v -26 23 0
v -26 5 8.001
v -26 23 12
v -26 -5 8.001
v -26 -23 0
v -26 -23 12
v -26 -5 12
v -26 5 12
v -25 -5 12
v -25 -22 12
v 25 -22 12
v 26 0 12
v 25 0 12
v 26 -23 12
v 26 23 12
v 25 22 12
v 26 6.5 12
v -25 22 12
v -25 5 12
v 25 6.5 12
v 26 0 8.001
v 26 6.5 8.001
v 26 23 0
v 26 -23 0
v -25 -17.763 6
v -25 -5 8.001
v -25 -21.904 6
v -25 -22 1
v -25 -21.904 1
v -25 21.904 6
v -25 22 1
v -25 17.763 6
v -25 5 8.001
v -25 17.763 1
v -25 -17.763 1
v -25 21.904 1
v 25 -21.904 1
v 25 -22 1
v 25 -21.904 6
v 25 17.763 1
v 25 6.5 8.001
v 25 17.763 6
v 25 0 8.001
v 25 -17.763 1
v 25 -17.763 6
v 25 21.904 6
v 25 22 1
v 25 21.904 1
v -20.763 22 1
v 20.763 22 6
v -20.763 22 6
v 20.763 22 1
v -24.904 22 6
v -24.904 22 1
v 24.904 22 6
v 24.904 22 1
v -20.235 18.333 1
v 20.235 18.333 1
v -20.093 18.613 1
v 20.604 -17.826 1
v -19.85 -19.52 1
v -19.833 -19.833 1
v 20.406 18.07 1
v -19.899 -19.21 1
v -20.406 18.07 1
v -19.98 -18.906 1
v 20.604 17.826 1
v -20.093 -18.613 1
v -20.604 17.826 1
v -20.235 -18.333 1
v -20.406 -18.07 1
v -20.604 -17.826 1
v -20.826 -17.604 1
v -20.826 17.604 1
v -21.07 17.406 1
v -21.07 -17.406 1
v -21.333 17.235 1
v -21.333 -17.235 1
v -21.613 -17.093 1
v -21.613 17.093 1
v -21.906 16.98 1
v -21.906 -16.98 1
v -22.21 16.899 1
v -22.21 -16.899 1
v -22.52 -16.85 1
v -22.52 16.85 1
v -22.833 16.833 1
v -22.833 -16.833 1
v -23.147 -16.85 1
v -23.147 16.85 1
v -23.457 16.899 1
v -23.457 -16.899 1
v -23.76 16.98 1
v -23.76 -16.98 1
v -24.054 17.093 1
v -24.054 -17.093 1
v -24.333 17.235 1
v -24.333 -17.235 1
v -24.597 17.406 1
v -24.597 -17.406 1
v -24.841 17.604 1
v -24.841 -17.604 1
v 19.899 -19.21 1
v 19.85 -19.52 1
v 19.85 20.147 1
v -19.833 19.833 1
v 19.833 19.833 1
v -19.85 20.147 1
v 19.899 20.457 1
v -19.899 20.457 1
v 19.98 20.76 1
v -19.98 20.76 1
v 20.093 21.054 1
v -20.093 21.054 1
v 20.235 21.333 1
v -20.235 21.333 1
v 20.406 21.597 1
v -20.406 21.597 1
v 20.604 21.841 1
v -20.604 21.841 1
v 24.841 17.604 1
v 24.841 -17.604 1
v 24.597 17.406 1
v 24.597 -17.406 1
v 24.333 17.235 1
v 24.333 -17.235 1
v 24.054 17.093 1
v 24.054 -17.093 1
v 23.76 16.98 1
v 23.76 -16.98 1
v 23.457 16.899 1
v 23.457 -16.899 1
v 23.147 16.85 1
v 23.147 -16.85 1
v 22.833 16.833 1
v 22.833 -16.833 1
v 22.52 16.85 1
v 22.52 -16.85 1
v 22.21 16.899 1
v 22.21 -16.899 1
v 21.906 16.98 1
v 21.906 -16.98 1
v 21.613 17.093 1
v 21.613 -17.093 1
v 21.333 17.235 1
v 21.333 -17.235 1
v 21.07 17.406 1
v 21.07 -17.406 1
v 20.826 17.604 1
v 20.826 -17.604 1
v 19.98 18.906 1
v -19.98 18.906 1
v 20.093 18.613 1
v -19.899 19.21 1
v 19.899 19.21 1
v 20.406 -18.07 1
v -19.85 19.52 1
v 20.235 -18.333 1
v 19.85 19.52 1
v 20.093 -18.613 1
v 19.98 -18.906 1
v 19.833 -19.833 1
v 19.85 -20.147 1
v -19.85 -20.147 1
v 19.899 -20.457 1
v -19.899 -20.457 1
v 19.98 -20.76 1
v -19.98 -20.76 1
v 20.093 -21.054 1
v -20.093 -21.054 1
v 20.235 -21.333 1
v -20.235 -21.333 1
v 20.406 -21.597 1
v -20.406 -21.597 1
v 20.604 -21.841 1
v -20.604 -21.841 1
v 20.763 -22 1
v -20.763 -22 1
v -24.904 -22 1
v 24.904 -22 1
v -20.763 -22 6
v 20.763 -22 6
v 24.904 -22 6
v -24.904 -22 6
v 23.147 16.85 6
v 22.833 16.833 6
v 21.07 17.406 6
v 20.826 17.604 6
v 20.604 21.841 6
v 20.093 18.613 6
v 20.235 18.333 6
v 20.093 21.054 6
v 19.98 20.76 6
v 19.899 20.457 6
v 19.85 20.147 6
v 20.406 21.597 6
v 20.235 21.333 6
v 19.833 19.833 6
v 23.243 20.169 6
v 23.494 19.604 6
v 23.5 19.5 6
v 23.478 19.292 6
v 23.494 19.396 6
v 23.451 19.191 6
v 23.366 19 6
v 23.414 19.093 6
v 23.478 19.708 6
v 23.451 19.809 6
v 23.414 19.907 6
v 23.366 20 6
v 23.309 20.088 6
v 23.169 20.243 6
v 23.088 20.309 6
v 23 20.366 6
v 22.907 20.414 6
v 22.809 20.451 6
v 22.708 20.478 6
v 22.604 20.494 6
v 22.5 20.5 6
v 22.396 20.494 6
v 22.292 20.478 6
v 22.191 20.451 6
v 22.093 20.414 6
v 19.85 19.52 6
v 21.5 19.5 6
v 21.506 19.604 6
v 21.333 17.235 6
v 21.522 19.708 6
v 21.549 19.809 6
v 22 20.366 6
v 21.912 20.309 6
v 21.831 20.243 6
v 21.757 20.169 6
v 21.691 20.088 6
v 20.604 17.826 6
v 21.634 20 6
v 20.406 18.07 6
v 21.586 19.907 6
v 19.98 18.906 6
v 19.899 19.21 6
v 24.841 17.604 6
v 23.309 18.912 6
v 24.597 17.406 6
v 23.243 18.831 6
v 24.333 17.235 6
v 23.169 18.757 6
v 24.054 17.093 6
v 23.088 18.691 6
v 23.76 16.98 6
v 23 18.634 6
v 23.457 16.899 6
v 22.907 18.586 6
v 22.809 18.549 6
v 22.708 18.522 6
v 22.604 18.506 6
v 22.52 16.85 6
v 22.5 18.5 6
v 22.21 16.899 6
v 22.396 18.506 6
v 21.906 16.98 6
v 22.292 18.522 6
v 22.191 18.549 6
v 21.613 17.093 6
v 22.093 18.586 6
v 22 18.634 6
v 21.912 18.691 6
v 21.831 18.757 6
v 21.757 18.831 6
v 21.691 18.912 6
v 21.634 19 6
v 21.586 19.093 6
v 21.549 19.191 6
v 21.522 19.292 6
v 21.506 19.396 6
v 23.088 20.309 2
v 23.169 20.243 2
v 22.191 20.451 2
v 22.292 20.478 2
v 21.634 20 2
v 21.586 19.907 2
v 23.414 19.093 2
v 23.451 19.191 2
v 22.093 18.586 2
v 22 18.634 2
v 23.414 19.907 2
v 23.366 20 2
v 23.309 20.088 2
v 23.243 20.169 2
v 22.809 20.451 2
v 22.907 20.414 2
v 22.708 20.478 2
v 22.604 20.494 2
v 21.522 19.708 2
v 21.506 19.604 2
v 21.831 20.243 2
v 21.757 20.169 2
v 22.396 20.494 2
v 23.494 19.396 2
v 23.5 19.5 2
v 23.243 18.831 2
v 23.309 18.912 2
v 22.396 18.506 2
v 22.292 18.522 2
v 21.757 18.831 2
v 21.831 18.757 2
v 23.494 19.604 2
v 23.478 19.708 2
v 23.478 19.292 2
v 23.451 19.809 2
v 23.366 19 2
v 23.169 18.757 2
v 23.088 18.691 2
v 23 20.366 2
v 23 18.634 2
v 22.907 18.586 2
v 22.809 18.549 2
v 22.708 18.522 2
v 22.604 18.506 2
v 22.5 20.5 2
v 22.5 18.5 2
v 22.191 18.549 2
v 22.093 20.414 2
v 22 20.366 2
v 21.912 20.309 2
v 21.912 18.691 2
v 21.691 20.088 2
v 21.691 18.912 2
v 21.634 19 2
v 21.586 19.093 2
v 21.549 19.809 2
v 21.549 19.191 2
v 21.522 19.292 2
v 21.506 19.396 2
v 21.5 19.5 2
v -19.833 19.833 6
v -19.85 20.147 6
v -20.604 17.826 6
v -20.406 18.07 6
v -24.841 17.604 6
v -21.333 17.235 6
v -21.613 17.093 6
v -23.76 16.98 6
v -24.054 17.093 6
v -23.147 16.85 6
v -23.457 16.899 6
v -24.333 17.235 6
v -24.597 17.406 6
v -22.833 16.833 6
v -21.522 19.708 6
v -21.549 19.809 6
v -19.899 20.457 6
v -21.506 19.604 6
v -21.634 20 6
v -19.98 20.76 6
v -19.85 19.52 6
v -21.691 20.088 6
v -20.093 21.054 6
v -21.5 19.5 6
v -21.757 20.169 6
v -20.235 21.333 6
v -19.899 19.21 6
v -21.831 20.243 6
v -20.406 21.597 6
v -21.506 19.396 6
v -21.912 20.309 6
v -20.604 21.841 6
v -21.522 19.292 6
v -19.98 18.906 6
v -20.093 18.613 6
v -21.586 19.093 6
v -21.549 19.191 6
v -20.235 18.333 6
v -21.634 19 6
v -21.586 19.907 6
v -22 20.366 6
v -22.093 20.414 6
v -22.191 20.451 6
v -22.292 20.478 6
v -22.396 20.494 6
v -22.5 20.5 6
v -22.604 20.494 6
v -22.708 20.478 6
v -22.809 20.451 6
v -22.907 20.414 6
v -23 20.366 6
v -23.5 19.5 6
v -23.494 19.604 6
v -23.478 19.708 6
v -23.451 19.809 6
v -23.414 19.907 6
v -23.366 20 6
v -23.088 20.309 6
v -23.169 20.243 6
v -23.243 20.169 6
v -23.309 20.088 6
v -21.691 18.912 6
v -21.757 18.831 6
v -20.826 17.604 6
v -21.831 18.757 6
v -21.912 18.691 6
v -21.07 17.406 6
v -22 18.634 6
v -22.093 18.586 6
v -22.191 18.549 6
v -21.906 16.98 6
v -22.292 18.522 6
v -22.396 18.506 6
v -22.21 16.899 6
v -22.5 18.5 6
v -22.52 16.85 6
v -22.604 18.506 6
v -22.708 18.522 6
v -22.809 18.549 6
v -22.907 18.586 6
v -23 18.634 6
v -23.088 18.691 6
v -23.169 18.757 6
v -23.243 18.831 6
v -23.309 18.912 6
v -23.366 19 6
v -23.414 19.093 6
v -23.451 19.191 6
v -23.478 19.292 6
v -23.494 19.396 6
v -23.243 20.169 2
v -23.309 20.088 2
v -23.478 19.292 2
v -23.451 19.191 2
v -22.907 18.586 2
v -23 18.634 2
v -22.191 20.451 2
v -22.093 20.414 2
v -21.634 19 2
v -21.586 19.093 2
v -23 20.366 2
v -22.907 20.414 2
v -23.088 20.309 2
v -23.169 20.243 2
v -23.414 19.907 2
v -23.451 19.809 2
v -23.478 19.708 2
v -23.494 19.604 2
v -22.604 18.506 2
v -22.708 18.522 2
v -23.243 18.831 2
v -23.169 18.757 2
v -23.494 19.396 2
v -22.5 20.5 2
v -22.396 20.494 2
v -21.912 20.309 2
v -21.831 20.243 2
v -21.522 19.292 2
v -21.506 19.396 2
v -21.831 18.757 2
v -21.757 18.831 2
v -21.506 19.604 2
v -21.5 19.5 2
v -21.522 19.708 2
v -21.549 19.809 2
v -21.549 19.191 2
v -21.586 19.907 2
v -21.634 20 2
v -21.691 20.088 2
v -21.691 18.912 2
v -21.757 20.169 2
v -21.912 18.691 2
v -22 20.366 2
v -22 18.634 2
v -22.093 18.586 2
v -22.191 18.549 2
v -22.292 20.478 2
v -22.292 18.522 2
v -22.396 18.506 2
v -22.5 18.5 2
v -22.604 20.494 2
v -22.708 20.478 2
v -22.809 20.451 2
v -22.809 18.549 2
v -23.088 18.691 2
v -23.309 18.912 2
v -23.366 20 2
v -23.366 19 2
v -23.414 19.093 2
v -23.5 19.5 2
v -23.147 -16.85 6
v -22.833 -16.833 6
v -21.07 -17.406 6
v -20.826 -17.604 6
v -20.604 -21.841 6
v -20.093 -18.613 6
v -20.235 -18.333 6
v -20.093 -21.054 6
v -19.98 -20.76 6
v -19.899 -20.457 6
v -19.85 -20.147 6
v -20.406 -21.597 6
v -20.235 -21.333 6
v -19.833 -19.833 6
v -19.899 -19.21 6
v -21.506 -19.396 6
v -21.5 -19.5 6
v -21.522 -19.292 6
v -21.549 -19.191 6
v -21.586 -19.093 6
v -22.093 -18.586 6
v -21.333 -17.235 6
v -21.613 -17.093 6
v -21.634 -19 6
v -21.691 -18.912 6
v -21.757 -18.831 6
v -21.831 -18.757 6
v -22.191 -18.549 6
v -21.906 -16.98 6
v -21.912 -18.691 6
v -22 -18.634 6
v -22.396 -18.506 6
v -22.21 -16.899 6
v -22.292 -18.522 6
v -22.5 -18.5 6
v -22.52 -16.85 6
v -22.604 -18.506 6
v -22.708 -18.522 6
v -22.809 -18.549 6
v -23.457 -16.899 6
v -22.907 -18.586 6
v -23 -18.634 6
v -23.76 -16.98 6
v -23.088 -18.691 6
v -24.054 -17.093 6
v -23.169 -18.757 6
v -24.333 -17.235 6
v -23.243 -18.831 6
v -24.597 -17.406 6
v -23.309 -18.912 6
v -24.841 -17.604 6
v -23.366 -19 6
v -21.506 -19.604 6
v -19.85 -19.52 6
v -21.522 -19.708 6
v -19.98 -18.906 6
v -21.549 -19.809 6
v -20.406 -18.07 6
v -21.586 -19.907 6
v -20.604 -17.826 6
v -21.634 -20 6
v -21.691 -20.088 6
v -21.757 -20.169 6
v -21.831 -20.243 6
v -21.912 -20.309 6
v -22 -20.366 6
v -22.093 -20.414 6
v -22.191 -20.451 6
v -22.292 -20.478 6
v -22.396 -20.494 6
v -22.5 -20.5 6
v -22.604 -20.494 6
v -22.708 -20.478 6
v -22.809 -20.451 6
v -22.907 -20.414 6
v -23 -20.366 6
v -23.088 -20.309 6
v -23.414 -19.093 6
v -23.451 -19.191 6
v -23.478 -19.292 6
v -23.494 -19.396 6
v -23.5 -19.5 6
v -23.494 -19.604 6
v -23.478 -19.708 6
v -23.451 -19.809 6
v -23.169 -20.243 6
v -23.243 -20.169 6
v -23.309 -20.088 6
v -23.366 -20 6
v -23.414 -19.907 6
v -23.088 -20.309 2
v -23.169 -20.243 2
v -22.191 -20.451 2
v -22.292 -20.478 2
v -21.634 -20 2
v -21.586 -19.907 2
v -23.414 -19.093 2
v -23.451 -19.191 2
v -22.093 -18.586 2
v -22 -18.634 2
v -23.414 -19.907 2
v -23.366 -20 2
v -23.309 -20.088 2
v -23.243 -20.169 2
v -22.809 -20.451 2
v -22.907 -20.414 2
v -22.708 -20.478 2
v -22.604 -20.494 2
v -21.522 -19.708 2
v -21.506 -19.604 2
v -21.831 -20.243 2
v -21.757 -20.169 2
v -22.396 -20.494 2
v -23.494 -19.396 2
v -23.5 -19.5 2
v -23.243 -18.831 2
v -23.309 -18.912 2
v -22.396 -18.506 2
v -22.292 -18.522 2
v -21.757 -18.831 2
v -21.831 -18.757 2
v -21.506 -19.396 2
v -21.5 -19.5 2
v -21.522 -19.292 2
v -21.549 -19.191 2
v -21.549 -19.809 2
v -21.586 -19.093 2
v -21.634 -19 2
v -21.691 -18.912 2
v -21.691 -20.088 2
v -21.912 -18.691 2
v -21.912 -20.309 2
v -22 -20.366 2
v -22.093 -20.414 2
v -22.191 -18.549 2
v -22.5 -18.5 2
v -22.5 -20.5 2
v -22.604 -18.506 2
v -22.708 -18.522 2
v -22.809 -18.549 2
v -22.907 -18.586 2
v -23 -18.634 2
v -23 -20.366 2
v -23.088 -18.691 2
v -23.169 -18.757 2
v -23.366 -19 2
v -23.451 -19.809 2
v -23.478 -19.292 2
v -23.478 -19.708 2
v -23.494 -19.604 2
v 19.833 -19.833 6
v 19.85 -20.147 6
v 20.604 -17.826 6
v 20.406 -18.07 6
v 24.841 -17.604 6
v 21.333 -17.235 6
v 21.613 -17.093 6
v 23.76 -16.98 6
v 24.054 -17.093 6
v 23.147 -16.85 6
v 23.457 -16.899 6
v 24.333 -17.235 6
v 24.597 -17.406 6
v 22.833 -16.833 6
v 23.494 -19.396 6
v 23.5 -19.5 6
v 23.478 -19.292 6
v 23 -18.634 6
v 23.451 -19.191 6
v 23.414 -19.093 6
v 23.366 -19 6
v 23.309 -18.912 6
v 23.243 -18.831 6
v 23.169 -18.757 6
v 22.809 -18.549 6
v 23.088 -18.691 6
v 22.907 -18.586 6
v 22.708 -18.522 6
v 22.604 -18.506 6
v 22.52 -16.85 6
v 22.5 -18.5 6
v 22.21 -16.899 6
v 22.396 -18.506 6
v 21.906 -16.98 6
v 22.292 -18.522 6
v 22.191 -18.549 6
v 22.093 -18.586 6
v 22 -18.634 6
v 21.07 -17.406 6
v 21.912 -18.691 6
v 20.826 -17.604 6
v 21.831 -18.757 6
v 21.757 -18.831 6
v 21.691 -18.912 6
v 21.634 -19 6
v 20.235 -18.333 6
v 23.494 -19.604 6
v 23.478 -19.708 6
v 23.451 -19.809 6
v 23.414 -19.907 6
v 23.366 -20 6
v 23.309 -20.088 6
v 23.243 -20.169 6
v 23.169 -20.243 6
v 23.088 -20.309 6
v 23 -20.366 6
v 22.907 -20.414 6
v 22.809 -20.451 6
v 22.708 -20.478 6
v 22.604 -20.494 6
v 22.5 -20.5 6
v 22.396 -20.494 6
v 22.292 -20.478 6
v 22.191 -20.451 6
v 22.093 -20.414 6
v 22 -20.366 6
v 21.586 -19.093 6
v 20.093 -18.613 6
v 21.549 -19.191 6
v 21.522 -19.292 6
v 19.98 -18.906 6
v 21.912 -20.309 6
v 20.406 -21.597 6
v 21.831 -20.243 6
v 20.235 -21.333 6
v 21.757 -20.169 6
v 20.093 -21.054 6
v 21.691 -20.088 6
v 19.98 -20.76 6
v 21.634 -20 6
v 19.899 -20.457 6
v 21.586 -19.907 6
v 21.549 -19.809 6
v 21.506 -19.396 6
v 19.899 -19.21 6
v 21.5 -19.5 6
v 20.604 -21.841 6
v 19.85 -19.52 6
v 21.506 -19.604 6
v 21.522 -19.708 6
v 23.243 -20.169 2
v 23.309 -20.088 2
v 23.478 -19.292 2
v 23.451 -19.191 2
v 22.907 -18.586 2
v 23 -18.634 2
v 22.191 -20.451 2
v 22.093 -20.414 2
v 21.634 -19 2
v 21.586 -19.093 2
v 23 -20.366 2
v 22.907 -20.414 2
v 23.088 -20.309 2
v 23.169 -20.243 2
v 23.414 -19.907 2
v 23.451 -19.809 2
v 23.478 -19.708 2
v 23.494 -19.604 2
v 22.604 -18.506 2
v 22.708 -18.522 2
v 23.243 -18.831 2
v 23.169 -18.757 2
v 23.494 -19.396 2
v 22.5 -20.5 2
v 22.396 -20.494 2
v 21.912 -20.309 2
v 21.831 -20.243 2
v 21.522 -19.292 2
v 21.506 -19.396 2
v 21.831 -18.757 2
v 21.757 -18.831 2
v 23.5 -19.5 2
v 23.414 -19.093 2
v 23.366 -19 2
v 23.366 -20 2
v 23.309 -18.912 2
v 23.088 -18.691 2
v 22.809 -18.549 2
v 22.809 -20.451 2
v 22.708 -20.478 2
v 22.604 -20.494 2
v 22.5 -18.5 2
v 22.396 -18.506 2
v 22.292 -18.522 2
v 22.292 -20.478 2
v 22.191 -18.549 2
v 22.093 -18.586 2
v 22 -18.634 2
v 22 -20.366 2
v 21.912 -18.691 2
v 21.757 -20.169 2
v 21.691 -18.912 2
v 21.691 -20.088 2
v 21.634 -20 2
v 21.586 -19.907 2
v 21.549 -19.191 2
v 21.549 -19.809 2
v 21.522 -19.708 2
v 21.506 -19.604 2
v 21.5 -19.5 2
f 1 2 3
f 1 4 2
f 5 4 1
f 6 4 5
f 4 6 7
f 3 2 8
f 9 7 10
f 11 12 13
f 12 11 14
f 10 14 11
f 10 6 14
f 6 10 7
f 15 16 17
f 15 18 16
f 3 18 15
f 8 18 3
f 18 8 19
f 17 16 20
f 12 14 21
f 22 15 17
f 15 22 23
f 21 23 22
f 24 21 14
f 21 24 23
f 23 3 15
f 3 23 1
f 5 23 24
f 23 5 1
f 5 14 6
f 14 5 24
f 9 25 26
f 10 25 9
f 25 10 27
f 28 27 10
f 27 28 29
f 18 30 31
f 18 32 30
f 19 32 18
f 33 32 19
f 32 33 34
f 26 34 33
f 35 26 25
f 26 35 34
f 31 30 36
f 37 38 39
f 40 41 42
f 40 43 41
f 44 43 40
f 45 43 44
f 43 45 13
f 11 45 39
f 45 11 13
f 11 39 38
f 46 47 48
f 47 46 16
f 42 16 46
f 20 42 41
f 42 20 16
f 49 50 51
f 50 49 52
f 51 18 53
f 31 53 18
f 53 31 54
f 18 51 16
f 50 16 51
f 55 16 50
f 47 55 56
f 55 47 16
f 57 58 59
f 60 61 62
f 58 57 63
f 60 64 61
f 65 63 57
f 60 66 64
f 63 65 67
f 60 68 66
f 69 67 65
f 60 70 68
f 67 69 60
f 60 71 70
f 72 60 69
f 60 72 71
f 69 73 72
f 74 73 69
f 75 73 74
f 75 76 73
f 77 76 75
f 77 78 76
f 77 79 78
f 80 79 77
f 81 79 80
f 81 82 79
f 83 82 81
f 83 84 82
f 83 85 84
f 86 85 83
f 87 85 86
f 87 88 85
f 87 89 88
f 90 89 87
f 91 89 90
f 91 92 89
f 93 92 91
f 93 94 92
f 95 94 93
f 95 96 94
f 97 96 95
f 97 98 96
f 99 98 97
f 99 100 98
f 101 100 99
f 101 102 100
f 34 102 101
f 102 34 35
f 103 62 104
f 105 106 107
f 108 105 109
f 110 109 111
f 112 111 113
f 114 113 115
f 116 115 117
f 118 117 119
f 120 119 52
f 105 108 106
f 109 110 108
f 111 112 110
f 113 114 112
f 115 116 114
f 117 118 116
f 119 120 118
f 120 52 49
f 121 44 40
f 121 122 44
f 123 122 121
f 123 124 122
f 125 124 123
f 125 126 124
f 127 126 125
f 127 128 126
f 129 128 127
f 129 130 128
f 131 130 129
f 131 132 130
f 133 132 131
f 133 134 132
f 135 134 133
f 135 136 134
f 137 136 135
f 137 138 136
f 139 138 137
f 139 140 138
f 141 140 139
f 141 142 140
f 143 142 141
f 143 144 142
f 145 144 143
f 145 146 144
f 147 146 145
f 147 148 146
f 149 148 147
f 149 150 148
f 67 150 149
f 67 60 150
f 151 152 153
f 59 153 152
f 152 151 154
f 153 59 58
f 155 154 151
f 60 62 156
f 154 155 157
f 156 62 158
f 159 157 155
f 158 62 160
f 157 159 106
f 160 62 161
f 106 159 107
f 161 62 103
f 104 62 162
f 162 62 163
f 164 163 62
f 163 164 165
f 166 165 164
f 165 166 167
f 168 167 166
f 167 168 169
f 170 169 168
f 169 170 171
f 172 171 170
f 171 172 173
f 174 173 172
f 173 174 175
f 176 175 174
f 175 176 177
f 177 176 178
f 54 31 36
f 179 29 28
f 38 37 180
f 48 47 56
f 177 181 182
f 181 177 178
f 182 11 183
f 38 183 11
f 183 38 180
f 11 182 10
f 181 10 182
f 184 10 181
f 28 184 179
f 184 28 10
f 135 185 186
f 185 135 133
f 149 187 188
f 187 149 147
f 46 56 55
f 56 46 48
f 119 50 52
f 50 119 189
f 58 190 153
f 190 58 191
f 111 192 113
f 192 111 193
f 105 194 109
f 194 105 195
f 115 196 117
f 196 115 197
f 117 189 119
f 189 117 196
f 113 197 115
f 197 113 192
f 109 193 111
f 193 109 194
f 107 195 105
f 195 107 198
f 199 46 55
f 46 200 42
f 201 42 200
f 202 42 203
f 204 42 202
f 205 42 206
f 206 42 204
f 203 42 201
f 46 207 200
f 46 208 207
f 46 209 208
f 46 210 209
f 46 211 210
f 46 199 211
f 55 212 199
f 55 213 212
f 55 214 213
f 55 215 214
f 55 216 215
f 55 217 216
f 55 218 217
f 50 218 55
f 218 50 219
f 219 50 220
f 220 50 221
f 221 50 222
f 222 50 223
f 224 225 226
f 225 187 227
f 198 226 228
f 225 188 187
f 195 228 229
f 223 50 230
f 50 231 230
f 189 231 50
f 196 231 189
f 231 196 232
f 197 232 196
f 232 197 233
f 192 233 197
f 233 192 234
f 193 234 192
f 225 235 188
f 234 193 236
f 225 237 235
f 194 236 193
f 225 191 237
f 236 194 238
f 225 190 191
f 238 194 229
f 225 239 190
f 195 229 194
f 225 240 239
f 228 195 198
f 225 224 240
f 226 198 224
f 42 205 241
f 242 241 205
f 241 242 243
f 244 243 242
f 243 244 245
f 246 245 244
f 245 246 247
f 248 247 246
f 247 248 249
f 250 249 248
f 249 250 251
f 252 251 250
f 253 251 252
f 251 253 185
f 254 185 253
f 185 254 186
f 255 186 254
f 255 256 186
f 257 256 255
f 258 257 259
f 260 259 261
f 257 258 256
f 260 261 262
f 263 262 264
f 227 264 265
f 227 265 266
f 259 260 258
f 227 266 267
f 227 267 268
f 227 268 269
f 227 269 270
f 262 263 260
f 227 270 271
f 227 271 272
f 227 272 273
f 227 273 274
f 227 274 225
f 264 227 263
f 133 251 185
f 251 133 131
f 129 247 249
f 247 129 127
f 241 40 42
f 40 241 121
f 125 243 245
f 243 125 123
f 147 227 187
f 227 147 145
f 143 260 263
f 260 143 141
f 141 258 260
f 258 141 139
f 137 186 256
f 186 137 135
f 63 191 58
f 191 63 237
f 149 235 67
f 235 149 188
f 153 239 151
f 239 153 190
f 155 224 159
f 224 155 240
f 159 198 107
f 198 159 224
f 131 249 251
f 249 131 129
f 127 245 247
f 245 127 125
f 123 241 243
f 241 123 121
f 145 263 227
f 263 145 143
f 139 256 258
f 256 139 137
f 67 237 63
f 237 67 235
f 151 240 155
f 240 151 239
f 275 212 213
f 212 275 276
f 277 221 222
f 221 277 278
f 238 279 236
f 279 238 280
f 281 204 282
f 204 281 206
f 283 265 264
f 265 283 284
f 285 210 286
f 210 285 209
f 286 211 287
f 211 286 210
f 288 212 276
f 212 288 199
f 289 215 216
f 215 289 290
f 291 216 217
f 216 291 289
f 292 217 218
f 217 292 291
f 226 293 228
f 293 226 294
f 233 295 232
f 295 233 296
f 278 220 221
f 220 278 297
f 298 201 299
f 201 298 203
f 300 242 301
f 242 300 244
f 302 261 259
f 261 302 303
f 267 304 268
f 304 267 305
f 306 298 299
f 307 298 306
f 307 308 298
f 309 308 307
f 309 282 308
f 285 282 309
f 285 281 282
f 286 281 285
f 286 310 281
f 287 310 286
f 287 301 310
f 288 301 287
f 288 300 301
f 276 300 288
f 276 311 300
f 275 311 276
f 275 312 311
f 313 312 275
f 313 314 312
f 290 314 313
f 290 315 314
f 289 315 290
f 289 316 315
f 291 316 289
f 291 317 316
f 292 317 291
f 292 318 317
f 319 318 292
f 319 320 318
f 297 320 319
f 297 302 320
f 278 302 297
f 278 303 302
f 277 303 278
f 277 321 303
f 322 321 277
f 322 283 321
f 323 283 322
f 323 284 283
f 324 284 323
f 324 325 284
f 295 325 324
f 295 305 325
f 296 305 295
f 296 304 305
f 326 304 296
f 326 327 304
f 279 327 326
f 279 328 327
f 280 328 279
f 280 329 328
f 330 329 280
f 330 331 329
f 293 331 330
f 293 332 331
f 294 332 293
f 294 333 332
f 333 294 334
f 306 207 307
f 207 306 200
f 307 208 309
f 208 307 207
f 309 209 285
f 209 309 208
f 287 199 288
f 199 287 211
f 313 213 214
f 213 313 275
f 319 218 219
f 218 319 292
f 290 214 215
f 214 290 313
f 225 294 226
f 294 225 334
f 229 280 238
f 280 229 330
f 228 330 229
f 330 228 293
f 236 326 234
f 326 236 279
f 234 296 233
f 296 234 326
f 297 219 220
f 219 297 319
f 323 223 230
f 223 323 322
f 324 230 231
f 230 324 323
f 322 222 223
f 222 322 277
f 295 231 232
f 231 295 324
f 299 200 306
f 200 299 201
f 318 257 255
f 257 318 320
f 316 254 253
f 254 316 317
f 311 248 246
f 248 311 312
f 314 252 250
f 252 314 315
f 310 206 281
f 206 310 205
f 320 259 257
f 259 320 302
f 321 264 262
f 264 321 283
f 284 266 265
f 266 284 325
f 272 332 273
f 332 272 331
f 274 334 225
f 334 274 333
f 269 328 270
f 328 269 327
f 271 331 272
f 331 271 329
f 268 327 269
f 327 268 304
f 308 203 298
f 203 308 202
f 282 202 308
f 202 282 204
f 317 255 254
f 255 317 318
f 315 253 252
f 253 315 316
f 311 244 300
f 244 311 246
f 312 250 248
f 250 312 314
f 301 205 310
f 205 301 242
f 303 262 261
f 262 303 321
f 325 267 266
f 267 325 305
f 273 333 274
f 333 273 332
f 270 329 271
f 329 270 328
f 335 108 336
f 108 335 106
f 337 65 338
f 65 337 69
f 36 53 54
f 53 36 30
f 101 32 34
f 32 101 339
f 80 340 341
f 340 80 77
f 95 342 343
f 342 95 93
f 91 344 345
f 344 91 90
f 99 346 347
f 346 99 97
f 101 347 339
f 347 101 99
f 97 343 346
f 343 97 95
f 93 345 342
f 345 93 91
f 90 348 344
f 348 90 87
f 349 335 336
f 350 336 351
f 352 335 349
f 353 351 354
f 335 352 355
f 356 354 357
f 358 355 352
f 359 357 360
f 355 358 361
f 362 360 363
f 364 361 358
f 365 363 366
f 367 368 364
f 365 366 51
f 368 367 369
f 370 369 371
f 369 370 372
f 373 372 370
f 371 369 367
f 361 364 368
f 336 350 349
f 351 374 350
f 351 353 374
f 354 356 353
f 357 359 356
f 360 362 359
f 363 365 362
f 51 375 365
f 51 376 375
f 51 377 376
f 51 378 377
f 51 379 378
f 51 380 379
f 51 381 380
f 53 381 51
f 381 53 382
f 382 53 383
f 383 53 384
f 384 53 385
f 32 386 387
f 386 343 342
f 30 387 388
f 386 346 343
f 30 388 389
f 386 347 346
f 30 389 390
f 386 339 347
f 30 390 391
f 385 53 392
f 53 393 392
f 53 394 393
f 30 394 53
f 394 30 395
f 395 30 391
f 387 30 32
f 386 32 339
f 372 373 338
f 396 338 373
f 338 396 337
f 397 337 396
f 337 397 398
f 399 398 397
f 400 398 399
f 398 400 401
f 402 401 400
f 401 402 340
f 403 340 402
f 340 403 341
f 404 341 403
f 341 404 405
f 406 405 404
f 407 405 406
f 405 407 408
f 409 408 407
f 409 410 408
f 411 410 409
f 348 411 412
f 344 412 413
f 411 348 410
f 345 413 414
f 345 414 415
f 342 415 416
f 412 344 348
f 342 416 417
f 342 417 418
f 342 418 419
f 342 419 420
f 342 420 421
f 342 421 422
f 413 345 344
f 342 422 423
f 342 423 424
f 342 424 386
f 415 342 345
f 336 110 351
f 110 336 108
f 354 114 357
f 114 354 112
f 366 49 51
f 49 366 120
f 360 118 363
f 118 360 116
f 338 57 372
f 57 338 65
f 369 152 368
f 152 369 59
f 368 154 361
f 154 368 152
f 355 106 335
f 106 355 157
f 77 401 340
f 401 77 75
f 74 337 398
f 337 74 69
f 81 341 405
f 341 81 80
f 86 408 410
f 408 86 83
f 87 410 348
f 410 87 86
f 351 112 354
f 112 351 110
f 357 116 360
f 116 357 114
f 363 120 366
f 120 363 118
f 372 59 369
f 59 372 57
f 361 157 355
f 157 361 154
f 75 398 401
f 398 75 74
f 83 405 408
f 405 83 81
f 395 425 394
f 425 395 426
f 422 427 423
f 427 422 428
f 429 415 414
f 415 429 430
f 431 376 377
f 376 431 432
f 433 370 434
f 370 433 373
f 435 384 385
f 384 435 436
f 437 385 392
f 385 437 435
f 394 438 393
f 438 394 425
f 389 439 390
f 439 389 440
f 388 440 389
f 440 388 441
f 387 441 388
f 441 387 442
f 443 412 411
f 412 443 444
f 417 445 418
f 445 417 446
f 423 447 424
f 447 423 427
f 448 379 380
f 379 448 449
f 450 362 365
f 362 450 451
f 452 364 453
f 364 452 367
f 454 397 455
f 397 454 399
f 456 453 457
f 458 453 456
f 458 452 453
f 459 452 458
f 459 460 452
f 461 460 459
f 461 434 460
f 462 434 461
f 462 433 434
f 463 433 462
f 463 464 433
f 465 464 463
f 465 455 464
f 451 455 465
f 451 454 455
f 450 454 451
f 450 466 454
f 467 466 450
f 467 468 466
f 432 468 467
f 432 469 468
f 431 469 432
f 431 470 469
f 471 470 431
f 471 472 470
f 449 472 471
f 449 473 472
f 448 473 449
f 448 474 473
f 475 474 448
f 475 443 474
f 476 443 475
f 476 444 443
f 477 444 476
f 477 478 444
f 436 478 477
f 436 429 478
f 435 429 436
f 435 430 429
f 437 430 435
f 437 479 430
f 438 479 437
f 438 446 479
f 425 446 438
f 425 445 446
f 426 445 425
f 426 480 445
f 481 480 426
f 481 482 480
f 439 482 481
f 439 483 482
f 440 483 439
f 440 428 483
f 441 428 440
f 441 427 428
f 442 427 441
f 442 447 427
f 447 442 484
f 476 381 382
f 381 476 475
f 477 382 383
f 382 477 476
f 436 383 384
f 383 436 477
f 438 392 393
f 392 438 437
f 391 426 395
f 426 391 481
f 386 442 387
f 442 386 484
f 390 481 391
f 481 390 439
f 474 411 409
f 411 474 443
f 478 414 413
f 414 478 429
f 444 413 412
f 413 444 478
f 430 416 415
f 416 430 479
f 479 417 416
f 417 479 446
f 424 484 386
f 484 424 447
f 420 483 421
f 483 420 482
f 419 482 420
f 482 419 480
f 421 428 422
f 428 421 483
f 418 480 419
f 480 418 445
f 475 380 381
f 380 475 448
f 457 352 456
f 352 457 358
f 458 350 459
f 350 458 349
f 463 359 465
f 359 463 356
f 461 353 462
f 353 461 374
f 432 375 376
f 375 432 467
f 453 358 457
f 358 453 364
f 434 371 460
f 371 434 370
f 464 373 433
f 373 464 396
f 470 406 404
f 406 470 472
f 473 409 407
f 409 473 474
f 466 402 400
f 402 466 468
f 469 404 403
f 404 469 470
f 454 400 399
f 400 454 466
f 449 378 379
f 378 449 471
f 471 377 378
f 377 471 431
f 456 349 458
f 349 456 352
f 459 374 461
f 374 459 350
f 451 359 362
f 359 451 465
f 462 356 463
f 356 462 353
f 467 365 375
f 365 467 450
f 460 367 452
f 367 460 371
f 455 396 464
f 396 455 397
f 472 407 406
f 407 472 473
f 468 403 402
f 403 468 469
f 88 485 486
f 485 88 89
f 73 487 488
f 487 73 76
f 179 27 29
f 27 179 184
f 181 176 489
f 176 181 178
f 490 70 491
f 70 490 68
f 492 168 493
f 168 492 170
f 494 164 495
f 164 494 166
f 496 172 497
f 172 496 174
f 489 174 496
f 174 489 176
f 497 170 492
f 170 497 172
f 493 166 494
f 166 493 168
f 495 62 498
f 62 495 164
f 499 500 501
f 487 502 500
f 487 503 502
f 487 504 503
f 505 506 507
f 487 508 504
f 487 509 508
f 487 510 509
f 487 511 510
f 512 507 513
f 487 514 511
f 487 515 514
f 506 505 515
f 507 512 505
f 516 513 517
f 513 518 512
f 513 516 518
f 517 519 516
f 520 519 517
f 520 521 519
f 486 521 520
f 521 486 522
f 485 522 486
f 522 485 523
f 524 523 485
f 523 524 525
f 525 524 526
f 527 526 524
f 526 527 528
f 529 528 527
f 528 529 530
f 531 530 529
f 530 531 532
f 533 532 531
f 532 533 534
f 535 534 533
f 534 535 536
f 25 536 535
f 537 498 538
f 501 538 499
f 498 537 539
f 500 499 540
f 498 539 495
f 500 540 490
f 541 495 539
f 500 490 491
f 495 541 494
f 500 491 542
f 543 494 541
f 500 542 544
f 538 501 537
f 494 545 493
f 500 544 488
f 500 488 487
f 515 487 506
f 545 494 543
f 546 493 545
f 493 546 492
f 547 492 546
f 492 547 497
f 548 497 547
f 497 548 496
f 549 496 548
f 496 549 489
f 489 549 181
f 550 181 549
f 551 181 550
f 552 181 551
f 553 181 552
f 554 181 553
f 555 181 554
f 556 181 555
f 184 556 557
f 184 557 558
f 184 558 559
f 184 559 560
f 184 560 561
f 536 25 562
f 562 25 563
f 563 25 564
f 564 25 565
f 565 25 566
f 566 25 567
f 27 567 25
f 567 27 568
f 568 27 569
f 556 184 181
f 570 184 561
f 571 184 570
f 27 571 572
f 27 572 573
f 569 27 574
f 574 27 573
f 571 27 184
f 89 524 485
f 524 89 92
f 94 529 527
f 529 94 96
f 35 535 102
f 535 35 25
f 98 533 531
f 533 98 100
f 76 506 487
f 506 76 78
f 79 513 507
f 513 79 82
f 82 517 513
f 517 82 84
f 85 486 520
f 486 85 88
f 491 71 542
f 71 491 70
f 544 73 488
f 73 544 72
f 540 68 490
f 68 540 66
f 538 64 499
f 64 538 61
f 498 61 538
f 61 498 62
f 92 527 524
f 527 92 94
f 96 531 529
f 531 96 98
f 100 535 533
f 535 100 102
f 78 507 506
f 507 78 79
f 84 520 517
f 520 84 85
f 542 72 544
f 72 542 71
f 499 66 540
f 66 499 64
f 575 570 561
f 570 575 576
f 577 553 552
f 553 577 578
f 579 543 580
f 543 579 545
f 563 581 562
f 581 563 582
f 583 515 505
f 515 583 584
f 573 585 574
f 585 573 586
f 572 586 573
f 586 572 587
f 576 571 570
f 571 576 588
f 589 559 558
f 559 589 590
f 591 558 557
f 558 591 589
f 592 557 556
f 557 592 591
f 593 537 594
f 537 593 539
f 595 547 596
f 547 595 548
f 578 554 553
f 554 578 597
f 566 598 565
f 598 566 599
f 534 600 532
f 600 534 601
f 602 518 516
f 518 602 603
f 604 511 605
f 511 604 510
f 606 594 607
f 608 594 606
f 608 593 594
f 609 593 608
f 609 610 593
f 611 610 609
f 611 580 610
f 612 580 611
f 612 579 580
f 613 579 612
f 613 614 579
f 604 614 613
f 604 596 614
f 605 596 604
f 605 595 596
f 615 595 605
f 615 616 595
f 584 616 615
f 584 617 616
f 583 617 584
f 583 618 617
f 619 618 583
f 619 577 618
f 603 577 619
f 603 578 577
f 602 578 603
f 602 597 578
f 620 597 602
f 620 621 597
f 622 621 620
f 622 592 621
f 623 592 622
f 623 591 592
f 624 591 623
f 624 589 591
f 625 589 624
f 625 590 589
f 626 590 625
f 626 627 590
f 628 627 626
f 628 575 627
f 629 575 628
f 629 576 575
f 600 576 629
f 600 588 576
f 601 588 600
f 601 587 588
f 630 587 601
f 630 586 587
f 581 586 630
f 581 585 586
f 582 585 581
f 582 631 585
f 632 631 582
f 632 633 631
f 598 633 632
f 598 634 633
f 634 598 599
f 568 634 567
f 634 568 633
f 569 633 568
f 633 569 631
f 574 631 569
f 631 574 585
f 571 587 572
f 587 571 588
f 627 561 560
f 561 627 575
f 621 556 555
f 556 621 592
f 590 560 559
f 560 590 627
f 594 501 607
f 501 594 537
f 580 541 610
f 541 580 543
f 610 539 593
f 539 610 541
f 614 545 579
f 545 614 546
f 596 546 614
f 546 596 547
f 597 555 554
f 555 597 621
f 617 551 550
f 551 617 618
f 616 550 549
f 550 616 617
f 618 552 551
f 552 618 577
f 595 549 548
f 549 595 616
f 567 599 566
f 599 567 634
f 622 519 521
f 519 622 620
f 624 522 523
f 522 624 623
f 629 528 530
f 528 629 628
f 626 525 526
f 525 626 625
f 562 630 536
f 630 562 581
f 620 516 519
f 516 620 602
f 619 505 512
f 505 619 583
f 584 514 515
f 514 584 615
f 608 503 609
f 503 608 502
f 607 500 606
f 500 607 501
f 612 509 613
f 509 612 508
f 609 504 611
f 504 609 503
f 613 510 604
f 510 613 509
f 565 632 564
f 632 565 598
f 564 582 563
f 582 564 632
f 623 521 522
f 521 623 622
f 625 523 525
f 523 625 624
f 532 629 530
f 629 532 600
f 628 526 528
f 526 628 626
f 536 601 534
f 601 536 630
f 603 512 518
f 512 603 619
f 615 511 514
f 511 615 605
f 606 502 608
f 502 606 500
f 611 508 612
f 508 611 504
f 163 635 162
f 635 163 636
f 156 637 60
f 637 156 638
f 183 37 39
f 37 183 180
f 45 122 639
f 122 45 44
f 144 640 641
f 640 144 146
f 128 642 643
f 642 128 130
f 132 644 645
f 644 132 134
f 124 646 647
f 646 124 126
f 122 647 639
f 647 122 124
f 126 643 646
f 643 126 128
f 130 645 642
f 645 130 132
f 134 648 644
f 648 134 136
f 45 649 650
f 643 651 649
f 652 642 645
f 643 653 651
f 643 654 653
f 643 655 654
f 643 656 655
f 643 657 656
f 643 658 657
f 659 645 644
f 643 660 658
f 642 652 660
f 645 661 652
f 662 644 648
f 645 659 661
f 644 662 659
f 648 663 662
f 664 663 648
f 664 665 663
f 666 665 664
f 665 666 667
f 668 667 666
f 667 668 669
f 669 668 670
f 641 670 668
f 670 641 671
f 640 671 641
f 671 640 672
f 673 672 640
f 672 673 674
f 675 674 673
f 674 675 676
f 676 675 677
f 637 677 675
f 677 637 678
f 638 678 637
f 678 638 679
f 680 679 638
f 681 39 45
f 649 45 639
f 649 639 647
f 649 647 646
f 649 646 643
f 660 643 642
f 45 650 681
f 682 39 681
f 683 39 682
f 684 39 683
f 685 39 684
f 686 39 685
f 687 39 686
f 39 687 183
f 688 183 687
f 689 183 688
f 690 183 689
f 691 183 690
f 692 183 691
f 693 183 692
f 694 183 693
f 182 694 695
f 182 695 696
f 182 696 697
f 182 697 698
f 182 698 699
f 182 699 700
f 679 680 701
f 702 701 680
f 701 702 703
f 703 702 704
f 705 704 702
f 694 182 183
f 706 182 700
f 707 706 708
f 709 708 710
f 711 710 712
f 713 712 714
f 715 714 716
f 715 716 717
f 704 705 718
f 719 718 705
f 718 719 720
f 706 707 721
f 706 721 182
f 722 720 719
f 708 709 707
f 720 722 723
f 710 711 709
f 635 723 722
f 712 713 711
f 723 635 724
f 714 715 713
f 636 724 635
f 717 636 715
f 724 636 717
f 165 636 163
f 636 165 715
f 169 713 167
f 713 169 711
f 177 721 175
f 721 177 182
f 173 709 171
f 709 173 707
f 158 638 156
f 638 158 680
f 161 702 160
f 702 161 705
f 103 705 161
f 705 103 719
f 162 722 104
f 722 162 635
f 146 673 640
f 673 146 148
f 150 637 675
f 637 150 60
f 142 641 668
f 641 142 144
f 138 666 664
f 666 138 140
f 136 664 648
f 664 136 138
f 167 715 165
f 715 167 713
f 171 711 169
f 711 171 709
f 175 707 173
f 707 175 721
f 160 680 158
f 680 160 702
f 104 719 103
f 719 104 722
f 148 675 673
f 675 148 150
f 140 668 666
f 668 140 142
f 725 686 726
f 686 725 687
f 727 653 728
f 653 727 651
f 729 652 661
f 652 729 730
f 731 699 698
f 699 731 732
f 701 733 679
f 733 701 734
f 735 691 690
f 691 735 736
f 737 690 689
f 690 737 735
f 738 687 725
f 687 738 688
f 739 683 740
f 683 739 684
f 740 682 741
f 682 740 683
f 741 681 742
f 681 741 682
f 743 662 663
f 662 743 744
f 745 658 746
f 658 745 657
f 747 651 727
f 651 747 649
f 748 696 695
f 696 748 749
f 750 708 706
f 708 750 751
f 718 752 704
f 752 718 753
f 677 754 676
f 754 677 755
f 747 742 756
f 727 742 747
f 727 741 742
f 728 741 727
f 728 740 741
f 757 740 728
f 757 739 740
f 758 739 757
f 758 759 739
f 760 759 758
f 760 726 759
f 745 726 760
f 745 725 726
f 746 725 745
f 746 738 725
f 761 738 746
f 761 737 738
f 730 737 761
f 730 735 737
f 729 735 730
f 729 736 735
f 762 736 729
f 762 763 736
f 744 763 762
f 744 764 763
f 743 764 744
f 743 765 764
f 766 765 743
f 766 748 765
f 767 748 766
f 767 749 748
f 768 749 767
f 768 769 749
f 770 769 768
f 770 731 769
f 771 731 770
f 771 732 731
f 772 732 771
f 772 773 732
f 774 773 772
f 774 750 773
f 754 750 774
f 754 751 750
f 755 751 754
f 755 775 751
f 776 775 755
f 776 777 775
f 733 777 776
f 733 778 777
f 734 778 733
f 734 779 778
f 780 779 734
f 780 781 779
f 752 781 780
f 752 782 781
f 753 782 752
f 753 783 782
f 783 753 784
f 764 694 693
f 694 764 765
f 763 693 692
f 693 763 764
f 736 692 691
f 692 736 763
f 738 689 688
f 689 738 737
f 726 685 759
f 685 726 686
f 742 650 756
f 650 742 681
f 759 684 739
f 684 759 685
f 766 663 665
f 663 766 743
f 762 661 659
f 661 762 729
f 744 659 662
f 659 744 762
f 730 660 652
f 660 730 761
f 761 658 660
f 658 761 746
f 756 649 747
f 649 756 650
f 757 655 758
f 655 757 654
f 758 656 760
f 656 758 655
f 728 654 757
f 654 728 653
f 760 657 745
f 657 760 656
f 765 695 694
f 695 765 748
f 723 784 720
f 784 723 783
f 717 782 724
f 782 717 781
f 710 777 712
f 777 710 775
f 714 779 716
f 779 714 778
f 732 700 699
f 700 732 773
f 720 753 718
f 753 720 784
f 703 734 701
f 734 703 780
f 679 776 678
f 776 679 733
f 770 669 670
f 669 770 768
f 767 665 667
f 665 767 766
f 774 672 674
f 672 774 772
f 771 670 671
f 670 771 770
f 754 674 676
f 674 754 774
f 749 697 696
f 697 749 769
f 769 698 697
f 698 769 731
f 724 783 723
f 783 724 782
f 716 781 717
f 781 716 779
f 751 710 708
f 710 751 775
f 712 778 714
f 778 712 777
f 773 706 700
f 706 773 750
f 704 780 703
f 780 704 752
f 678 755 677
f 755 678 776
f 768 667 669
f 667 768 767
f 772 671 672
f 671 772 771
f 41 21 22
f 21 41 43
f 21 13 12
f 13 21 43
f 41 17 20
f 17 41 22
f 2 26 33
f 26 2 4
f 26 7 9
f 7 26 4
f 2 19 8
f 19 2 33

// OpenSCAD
$fn=60;

t = 1;
x = 50;
y = 44;
z = 11;

do = 6;
di = 2;
lo = 5;
li = 4;
p = 2.5;

module mainform() {
	translate([-(x+t*2)/2, -(y+t*2)/2, 0]) cube([x+2*t,y+2*t,z+2*t]);	
}

module cbox() {
	translate([-(x+t*2)/2, -(y+t*2)/2, 0]) difference() {
		cube([x+t*2,y+t*2,z+t]);
		translate([t,t,t]) cube([x,y,z+0.001]);
	}
}

module cyl() {
		difference() {
			translate([t/3,t/3,0]) cylinder(h=lo, r=(do)/2);
			translate([0,0,t]) cylinder(h=li+0.001, r=di/2);
		}
}

difference() {
	intersection() {
		union() {
			cbox(); 
			translate([x/2-p,y/2-p,t]) cyl();
			translate([-x/2+p,y/2-p,t]) rotate(90) cyl();
			translate([-x/2+p,-y/2+p,t]) rotate(180) cyl();
			translate([x/2-p,-y/2+p,t]) rotate(270) cyl();
		}
		mainform();
	}
	translate([0,0,z+t+0.001-4]) cube([x,6.5,4]);
	translate([-x,-10/2,z+t+0.001-4]) cube([x,10,4]);
}
